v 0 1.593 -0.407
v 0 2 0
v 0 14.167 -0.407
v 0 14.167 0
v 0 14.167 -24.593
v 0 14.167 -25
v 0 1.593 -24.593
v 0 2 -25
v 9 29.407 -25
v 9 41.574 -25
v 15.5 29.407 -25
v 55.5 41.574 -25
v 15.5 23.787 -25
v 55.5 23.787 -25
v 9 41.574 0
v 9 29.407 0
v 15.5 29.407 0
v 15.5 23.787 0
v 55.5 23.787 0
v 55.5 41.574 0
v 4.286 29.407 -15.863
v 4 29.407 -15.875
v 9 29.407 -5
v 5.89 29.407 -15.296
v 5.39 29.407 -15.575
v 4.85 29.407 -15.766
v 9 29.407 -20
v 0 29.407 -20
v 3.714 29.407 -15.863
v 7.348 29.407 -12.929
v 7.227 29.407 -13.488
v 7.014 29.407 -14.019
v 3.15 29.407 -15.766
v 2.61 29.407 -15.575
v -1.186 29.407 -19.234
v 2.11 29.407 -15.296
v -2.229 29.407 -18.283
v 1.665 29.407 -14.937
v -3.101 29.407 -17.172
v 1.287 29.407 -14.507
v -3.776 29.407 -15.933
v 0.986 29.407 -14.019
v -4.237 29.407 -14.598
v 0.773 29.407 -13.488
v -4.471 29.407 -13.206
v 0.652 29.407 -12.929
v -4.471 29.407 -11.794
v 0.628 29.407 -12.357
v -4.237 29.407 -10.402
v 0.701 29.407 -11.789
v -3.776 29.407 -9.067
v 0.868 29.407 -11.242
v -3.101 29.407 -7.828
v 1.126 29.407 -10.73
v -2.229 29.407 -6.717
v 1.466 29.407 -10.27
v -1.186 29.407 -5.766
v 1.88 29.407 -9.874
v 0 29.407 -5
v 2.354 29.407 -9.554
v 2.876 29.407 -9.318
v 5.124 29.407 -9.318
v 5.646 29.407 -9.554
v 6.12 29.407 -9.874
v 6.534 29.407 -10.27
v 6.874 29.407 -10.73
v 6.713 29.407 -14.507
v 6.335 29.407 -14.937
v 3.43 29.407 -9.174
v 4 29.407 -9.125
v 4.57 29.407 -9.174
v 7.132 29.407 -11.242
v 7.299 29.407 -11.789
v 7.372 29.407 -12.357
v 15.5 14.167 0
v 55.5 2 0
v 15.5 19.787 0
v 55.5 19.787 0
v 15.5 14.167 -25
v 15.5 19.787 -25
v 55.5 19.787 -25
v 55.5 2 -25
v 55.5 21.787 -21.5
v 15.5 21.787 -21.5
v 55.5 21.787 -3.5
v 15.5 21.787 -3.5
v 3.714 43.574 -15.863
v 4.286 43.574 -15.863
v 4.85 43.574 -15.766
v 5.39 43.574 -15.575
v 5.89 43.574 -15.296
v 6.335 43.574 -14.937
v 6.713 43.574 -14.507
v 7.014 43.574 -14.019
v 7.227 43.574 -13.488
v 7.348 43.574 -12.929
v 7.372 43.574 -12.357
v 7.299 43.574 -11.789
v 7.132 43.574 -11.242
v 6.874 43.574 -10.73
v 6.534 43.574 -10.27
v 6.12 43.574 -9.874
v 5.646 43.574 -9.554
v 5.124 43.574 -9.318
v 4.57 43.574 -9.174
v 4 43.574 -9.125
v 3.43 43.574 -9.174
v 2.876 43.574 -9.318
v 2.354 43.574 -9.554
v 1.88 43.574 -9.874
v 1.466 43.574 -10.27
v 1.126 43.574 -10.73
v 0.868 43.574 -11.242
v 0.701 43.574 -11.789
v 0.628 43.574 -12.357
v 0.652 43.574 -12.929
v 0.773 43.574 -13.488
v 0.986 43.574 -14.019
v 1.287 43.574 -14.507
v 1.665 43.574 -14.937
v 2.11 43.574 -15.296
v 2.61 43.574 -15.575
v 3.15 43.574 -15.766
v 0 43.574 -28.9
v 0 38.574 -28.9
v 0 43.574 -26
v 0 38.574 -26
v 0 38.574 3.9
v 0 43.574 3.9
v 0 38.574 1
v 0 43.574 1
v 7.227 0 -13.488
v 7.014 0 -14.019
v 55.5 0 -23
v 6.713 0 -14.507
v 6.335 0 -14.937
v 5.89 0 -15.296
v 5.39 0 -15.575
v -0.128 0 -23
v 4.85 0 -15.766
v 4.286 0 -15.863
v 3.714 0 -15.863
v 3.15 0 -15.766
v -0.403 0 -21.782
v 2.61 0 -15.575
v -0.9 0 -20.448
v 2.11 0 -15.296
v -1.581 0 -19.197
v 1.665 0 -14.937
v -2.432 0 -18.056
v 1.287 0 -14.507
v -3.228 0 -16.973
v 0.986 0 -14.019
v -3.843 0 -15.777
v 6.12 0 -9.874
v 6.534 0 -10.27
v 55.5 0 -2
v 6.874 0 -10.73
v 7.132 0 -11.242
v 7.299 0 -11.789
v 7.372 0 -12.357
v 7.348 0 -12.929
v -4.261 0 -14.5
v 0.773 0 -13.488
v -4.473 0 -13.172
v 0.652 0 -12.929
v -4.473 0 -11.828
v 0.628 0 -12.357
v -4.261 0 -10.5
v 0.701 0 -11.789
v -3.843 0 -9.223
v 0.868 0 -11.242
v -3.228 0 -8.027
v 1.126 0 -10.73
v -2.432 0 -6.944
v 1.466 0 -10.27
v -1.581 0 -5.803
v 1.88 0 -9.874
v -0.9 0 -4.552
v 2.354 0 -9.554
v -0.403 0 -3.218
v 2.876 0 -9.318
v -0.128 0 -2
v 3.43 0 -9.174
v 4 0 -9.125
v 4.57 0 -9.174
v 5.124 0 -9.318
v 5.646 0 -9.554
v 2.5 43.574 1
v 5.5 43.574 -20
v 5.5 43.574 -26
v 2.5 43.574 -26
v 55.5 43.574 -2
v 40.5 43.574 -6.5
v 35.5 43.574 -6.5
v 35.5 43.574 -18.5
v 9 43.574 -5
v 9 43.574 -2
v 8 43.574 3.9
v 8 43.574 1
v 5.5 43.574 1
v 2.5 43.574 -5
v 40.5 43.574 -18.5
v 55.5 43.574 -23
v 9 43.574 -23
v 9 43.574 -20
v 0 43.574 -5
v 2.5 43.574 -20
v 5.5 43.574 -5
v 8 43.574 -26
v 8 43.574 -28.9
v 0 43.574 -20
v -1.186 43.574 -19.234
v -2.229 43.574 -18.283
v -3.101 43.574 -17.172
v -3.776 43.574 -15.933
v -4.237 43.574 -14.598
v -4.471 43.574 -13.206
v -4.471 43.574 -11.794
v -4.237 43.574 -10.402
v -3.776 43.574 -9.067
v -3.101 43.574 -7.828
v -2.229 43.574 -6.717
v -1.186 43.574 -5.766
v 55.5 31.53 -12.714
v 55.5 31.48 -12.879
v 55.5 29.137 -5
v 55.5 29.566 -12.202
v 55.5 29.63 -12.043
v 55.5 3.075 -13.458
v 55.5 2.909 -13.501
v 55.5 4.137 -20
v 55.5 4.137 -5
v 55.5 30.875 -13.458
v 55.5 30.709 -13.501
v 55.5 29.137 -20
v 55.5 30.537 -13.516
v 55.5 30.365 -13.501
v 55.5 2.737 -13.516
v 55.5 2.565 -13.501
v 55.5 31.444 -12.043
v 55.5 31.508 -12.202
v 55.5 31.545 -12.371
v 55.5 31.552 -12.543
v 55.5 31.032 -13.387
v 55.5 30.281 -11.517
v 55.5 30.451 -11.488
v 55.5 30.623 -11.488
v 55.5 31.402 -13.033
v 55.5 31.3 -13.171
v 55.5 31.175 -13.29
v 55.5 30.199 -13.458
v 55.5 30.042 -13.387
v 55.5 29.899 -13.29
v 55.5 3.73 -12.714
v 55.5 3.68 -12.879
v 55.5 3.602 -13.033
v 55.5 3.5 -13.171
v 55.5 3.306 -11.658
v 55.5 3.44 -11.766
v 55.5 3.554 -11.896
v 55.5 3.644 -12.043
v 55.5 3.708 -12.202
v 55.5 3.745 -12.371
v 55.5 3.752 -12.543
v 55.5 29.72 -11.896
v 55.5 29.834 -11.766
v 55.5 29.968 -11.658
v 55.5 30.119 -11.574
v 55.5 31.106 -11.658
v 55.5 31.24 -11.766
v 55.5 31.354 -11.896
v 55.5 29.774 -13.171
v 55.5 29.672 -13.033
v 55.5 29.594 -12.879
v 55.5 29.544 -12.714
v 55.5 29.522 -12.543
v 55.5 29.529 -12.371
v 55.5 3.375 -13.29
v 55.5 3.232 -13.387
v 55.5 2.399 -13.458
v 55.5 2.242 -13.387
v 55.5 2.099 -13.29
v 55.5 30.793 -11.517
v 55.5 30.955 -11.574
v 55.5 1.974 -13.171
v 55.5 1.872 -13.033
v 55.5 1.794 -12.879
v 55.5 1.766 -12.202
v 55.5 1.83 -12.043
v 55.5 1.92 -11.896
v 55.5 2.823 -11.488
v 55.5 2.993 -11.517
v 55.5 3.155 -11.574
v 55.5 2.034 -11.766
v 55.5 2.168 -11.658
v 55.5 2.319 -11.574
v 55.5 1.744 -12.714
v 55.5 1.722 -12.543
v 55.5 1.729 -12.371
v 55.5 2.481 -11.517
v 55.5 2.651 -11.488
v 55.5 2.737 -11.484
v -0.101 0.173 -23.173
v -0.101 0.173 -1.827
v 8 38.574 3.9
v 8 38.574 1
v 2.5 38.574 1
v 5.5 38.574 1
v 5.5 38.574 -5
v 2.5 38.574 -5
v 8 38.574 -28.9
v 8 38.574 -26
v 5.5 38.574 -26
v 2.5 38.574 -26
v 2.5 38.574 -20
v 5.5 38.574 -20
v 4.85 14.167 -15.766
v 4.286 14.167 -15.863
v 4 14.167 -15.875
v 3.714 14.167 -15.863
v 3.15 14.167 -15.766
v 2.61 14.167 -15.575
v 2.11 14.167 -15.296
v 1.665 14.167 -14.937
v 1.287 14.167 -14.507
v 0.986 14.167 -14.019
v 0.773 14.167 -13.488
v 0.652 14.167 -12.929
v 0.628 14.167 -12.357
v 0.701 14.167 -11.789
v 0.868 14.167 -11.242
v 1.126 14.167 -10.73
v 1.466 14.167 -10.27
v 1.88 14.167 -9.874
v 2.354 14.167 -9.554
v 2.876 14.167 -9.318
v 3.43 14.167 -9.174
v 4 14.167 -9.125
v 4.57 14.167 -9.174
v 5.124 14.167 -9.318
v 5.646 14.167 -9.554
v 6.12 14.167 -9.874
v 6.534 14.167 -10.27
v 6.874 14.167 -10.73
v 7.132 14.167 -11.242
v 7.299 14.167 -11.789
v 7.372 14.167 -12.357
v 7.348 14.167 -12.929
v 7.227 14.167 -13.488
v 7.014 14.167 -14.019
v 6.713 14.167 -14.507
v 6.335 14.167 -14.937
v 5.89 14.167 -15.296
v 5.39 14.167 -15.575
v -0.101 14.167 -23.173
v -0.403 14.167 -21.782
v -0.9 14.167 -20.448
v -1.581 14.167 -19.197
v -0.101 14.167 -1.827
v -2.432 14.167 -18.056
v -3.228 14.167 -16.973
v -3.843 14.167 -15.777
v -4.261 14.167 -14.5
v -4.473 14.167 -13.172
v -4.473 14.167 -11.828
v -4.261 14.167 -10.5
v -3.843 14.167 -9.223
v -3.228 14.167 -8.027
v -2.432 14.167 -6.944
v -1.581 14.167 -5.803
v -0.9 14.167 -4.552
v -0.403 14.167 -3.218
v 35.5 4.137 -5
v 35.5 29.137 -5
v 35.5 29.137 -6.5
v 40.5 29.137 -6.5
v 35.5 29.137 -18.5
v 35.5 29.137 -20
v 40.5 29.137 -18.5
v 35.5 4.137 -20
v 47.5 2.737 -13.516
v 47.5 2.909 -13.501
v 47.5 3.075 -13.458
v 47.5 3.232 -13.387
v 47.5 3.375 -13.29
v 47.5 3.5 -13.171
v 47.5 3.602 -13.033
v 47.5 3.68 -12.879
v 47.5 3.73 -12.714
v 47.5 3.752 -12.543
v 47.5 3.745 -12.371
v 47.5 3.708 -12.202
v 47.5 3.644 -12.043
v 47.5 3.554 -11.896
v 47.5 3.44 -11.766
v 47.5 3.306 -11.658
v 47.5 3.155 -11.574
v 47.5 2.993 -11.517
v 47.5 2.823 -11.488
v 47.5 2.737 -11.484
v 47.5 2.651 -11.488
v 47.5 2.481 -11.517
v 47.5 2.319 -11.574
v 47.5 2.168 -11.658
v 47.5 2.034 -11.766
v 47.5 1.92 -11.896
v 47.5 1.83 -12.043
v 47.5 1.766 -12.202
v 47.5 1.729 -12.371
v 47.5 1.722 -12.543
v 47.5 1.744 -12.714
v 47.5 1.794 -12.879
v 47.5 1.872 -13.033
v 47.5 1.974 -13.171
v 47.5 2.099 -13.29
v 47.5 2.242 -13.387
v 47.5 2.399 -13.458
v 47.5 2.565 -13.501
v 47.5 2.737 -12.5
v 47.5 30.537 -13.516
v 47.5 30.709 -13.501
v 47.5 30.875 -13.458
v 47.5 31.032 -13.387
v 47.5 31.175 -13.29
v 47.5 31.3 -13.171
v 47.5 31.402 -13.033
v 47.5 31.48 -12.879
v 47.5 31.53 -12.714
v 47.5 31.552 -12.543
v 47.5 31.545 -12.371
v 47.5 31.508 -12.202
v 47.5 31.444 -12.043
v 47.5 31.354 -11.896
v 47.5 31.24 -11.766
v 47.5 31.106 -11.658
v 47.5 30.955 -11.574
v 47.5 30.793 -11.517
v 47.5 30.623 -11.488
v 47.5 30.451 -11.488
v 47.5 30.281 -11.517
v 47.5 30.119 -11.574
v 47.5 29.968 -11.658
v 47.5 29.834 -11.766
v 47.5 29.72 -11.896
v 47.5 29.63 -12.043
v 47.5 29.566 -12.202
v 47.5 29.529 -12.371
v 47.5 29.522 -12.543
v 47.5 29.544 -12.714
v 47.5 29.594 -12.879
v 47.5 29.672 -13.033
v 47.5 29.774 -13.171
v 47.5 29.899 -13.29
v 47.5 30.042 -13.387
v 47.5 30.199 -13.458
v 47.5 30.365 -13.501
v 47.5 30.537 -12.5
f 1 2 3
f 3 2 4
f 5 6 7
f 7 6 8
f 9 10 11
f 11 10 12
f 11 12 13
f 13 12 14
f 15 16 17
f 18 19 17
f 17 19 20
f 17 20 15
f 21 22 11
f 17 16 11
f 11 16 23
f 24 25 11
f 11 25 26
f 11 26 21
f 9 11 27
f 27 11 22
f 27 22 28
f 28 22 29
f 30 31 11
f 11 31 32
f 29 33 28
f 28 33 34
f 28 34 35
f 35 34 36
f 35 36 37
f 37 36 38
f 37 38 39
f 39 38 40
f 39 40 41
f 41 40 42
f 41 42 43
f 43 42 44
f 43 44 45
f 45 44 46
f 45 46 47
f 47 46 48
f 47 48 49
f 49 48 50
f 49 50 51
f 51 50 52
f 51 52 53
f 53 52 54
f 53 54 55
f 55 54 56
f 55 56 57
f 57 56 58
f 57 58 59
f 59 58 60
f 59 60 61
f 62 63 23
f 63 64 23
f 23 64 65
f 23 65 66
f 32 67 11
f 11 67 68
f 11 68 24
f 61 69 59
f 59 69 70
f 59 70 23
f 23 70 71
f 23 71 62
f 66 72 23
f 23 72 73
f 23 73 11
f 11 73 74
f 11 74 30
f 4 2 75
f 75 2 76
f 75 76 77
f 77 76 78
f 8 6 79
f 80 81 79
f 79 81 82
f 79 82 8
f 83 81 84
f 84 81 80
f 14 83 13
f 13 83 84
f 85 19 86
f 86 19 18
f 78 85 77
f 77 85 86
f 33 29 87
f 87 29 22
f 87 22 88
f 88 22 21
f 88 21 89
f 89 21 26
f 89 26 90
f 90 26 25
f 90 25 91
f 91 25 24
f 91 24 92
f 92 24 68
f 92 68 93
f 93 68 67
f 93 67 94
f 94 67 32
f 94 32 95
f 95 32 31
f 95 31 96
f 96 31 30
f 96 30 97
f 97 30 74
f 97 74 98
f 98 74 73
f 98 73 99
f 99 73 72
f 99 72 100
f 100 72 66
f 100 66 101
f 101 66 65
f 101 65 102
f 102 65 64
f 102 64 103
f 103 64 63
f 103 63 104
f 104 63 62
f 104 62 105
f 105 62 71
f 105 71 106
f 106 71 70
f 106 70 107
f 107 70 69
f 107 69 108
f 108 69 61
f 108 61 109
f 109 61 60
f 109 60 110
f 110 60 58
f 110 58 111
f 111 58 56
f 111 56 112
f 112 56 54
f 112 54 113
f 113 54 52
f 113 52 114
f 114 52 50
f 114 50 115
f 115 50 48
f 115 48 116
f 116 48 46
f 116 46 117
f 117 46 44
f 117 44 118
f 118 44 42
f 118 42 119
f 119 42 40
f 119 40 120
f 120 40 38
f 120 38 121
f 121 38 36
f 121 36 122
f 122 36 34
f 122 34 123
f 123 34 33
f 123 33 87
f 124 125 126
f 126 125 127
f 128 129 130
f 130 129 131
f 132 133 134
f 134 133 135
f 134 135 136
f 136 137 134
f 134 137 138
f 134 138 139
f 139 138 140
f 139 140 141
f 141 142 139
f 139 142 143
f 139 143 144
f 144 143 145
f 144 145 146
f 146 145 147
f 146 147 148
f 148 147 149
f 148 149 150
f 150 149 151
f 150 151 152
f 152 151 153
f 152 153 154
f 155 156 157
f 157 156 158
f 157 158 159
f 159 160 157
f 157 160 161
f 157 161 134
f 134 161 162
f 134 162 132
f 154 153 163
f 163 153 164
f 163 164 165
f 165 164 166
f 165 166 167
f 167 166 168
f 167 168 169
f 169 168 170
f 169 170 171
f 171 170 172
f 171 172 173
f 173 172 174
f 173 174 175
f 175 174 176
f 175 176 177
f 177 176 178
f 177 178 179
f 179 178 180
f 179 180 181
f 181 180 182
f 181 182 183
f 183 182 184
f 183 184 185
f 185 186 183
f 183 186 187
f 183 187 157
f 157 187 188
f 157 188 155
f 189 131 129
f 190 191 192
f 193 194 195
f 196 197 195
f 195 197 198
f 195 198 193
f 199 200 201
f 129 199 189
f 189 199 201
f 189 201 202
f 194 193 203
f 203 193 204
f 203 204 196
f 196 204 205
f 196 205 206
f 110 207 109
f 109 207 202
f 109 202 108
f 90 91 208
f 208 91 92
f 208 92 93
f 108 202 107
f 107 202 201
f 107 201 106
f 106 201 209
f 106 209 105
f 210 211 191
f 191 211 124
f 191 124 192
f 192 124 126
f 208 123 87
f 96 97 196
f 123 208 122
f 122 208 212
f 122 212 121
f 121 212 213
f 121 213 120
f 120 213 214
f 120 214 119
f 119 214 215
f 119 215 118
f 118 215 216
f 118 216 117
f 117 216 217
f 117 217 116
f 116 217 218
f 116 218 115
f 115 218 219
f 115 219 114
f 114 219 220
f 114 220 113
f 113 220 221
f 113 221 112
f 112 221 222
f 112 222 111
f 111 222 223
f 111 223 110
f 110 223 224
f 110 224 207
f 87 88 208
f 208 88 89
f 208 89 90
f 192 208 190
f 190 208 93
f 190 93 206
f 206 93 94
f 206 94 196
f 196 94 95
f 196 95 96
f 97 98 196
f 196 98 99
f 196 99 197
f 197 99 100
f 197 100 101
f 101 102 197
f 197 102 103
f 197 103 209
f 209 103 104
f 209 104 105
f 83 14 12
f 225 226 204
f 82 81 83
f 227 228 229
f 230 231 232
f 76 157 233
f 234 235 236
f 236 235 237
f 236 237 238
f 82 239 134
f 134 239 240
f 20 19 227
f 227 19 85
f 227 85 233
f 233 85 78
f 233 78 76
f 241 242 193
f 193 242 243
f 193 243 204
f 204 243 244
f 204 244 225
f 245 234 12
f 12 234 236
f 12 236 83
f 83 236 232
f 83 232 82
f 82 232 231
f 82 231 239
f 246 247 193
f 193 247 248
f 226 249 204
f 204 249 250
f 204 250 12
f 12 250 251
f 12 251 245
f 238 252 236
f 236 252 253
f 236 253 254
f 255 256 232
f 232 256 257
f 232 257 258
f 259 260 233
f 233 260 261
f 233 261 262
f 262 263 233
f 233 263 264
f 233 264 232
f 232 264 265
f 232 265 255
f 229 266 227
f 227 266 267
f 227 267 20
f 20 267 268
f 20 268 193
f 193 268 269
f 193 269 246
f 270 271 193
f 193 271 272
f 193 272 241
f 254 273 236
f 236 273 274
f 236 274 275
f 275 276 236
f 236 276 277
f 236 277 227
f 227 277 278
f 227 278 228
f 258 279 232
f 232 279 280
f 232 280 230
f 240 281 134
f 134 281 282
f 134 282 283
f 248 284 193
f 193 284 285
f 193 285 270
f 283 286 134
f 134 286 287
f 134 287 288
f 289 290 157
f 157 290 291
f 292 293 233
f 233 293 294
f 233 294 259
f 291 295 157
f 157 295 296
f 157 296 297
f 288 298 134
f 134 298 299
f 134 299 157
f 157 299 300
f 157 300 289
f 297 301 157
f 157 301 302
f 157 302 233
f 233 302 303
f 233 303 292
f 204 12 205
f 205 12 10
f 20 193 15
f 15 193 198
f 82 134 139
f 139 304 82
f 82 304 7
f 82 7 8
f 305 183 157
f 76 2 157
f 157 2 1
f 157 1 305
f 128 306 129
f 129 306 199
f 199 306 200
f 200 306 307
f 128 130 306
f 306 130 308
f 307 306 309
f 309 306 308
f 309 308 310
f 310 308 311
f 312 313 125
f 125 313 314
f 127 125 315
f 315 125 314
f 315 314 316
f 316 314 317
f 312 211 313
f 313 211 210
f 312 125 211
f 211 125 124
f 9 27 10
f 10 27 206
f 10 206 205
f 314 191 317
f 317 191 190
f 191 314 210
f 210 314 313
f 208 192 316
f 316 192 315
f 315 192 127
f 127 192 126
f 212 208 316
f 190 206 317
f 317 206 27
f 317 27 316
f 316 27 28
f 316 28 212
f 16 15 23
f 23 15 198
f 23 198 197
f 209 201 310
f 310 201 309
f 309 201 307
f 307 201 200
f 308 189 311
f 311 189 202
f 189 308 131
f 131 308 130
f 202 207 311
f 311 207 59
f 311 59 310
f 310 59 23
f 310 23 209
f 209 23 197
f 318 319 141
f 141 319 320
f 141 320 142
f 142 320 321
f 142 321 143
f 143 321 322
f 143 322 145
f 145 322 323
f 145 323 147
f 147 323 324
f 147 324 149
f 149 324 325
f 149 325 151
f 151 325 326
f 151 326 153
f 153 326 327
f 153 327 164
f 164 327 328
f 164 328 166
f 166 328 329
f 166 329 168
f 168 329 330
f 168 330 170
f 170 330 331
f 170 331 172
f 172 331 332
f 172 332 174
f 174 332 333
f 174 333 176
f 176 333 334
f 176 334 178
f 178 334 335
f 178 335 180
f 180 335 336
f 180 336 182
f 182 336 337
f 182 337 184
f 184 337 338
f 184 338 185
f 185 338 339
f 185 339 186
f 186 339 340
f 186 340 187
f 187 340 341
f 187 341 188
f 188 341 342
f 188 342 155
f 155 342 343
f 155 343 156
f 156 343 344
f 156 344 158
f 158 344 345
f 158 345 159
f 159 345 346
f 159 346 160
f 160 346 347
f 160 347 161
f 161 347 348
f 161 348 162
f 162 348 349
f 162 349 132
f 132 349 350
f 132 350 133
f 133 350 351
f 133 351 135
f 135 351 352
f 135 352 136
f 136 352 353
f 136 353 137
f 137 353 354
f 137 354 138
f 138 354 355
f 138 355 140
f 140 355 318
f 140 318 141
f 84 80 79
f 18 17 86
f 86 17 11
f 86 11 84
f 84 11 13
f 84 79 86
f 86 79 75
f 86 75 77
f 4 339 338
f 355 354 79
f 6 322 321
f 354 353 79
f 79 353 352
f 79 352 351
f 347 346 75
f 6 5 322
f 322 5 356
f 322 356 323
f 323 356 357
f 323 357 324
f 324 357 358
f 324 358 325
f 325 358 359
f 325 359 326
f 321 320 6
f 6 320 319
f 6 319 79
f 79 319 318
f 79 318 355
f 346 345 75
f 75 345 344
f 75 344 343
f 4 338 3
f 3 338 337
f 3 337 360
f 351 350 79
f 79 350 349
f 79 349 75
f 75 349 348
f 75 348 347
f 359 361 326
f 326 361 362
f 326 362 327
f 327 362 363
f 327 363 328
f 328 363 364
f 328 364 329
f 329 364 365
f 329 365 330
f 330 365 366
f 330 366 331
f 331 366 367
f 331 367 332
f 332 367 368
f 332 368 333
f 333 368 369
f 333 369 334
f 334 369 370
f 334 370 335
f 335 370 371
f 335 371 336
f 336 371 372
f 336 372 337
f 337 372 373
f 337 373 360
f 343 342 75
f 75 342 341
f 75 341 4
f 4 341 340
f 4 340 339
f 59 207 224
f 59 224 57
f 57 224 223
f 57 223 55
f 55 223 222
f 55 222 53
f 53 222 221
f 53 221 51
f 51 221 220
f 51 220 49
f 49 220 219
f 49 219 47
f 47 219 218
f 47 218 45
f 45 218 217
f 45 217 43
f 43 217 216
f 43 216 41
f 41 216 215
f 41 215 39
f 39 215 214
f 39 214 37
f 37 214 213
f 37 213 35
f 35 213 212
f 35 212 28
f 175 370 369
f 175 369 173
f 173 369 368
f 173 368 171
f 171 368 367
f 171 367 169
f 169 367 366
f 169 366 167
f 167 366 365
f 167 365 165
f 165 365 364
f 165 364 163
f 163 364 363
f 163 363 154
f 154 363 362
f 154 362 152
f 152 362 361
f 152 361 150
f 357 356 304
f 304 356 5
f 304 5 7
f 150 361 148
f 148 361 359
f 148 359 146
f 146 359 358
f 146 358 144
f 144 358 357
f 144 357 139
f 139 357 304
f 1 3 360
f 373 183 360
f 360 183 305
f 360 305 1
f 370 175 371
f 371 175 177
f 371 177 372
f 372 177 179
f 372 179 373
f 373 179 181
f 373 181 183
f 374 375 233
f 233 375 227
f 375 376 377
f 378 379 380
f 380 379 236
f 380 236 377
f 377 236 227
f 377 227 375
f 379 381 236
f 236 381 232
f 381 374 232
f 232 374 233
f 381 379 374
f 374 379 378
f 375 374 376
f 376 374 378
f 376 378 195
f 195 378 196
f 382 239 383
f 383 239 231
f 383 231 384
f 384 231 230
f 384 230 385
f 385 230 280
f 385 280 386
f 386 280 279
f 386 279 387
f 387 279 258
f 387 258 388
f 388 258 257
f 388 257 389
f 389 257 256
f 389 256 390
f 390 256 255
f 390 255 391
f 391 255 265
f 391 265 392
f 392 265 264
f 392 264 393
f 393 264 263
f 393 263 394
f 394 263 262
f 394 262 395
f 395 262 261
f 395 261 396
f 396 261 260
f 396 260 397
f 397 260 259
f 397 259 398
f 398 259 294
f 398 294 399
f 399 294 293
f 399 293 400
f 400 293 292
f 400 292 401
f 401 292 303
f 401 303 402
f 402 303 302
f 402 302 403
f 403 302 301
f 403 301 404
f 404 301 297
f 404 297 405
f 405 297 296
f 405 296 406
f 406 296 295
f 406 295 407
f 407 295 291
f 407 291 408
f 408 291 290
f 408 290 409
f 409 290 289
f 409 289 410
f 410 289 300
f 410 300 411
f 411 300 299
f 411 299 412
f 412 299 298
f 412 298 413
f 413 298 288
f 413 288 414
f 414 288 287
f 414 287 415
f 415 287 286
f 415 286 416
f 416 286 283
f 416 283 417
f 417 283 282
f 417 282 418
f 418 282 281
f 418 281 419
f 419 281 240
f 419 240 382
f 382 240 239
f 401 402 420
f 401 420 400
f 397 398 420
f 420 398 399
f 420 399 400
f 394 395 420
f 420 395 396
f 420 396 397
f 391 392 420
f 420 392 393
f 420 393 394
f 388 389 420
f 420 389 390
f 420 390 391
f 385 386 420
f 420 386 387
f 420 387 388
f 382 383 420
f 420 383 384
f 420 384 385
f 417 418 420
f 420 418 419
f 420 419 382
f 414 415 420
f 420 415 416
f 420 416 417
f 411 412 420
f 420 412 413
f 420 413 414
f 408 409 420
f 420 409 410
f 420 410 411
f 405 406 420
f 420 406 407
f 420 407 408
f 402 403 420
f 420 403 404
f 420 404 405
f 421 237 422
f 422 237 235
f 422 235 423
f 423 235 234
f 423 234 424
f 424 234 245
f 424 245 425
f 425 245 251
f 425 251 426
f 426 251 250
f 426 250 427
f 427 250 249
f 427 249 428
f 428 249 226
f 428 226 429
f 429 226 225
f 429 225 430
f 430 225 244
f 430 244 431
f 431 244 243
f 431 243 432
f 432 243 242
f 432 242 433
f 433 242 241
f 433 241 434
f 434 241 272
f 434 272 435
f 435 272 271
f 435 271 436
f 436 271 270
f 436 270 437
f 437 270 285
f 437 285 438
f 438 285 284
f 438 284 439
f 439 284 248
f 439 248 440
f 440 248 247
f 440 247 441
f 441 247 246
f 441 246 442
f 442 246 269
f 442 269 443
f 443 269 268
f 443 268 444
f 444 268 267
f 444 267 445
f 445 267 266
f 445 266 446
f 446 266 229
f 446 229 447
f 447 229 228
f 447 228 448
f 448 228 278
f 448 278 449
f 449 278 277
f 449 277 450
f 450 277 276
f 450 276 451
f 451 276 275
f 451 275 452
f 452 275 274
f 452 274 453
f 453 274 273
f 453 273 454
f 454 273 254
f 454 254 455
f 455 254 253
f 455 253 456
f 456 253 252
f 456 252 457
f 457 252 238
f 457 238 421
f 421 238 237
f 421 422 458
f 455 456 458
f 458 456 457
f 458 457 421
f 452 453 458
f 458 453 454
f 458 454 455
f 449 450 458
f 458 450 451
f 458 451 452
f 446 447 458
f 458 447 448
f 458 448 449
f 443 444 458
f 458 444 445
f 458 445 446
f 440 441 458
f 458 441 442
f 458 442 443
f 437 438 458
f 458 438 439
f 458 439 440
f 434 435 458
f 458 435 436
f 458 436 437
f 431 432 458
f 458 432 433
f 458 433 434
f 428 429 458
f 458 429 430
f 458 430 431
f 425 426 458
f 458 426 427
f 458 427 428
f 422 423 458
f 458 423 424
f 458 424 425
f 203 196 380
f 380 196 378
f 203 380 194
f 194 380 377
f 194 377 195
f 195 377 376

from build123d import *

# Parameters (mm, degrees)
BOSS_EXTRUDE1_DEPTH = 55.5
CHAMFER1_SIZE       = 2
SKETCH4_W           = 8
SKETCH4_H           = 32.8
BOSS_EXTRUDE2_DEPTH = 5
SKETCH7_W           = 3.5
SKETCH7_H           = 6
CUT_EXTRUDE5_DEPTH  = 10
SKETCH5_R           = 3.375
CUT_EXTRUDE3_DEPTH  = 77.250596562
SKETCH6_R           = 3.375
CUT_EXTRUDE4_DEPTH  = 7.62
SKETCH8_W           = 9
SKETCH8_H           = 5
CUT_EXTRUDE6_DEPTH  = 9.167
BOSS_EXTRUDE3_DEPTH = 14.167
BOSS_EXTRUDE4_START = -29.407
BOSS_EXTRUDE4_DEPTH = 14.167
FILLET1_R           = 10
SKETCH10_W          = 15
SKETCH10_H          = 25
CUT_EXTRUDE7_DEPTH  = 20
SKETCH11_R          = 1.016
CUT_EXTRUDE8_DEPTH  = 8
SKETCH12_W          = 5
SKETCH12_H          = 12
CUT_EXTRUDE9_DEPTH  = 14.437


with BuildPart() as part:
    # Sketch1 → Boss-Extrude1 (new body)
    with BuildSketch(Plane(origin=(0, 0, 0), x_dir=(0, 0, -1), z_dir=(1, 0, 0))):
        Polygon((0, 0), (25, 0), (25, 19.787), (21.5, 21.787), (25, 23.787), (25, 43.574), (0, 43.574), (0, 23.787), (3.5, 21.787), (0, 19.787), align=None)
    extrude(amount=BOSS_EXTRUDE1_DEPTH)

    # Chamfer1
    chamfer1_edges = [part.edges().sort_by_distance(p)[0] for p in [
        (27.75, 43.574, 0),
        (27.75, 43.574, -25),
        (27.75, 0, -25),
        (27.75, 0, 0),
    ]]
    chamfer(chamfer1_edges, length=CHAMFER1_SIZE)

    # Sketch4 → Boss-Extrude2 (add)
    with BuildSketch(Plane(origin=(0, 43.574, 0), x_dir=(1, 0, 0), z_dir=(0, 1, 0))):
        with Locations((4, 12.5)):
            Rectangle(SKETCH4_W, SKETCH4_H)
    extrude(amount=-BOSS_EXTRUDE2_DEPTH)

    # Sketch7 → Cut-Extrude5 (cut)
    with BuildSketch(Plane(origin=(0, 43.574, 0), x_dir=(1, 0, 0), z_dir=(0, 1, 0))):
        with Locations((7.25, 2)):
            Rectangle(SKETCH7_W, SKETCH7_H)
        with Locations((7.25, 23)):
            Rectangle(SKETCH7_W, SKETCH7_H)
        with Locations((0.75, 2)):
            Rectangle(SKETCH7_W, SKETCH7_H)
        with Locations((0.75, 23)):
            Rectangle(SKETCH7_W, SKETCH7_H)
    extrude(amount=-CUT_EXTRUDE5_DEPTH, mode=Mode.SUBTRACT)

    # Sketch5 → Cut-Extrude3 (cut, through all)
    with BuildSketch(Plane(origin=(0, 43.574, 0), x_dir=(1, 0, 0), z_dir=(0, 1, 0))):
        with Locations(Location((4, 12.5, 0), (0, 0, 270))):
            Circle(SKETCH5_R)
    extrude(amount=-CUT_EXTRUDE3_DEPTH, mode=Mode.SUBTRACT)

    # Sketch6 → Cut-Extrude4 (cut, symmetric)
    with BuildSketch(Plane(origin=(0, 21.787, 0), x_dir=(-1, 0, 0), z_dir=(0, -1, 0))):
        Polygon((-4, 30), (4.5, 30), (4.5, -5), (-4, -5), (-15.5, -5), (-15.5, 30), align=None)
        with Locations(Location((-4, 12.5, 0), (0, 0, 270))):
            Circle(SKETCH6_R, mode=Mode.SUBTRACT)
    extrude(amount=CUT_EXTRUDE4_DEPTH, both=True, mode=Mode.SUBTRACT)

    # Sketch8 → Cut-Extrude6 (cut)
    with BuildSketch(Plane.XZ.offset(-29.407)):
        with Locations((4.5, -22.5)):
            Rectangle(SKETCH8_W, SKETCH8_H)
        with Locations((4.5, -2.5)):
            Rectangle(SKETCH8_W, SKETCH8_H)
    extrude(amount=-CUT_EXTRUDE6_DEPTH, mode=Mode.SUBTRACT)

    # Sketch9 → Boss-Extrude3 (add)
    with BuildSketch(Plane(origin=(0, 43.574, 0), x_dir=(1, 0, 0), z_dir=(0, 1, 0))):
        with BuildLine():
            Line((0, 20), (0, 5))
            ThreePointArc((0, 5), (-4.5, 12.5), (0, 20))
        make_face()
    extrude(amount=-BOSS_EXTRUDE3_DEPTH)

    # Sketch9<2> → Boss-Extrude4 (add)
    with BuildSketch(Plane(origin=(0, 43.574, 0), x_dir=(1, 0, 0), z_dir=(0, 1, 0)).offset(BOSS_EXTRUDE4_START)):
        with BuildLine():
            Line((0, 20), (0, 5))
            ThreePointArc((0, 5), (-4.5, 12.5), (0, 20))
        make_face()
    extrude(amount=-BOSS_EXTRUDE4_DEPTH)

    # Fillet1
    fillet1_edges = [part.edges().sort_by_distance(p)[0] for p in [
        (0, 7.0835, -20),
        (0, 7.0835, -5),
    ]]
    fillet(fillet1_edges, radius=FILLET1_R)

    # Sketch10 → Cut-Extrude7 (cut)
    with BuildSketch(Plane(origin=(55.5, 0, 0), x_dir=(0, 0, -1), z_dir=(1, 0, 0))):
        with Locations((12.5, 16.637)):
            Rectangle(SKETCH10_W, SKETCH10_H)
    extrude(amount=-CUT_EXTRUDE7_DEPTH, mode=Mode.SUBTRACT)

    # Sketch11 → Cut-Extrude8 (cut)
    with BuildSketch(Plane(origin=(55.5, 0, 0), x_dir=(0, 0, -1), z_dir=(1, 0, 0))):
        with Locations((12.5, 30.537)):
            Circle(SKETCH11_R)
        with Locations(Location((12.5, 2.737, 0), (0, 0, 180))):
            Circle(SKETCH11_R)
    extrude(amount=-CUT_EXTRUDE8_DEPTH, mode=Mode.SUBTRACT)

    # Sketch12 → Cut-Extrude9 (cut)
    with BuildSketch(Plane(origin=(0, 43.574, 0), x_dir=(1, 0, 0), z_dir=(0, 1, 0))):
        with Locations((38, 12.5)):
            Rectangle(SKETCH12_W, SKETCH12_H)
    extrude(amount=-CUT_EXTRUDE9_DEPTH, mode=Mode.SUBTRACT)


solid = part.part
